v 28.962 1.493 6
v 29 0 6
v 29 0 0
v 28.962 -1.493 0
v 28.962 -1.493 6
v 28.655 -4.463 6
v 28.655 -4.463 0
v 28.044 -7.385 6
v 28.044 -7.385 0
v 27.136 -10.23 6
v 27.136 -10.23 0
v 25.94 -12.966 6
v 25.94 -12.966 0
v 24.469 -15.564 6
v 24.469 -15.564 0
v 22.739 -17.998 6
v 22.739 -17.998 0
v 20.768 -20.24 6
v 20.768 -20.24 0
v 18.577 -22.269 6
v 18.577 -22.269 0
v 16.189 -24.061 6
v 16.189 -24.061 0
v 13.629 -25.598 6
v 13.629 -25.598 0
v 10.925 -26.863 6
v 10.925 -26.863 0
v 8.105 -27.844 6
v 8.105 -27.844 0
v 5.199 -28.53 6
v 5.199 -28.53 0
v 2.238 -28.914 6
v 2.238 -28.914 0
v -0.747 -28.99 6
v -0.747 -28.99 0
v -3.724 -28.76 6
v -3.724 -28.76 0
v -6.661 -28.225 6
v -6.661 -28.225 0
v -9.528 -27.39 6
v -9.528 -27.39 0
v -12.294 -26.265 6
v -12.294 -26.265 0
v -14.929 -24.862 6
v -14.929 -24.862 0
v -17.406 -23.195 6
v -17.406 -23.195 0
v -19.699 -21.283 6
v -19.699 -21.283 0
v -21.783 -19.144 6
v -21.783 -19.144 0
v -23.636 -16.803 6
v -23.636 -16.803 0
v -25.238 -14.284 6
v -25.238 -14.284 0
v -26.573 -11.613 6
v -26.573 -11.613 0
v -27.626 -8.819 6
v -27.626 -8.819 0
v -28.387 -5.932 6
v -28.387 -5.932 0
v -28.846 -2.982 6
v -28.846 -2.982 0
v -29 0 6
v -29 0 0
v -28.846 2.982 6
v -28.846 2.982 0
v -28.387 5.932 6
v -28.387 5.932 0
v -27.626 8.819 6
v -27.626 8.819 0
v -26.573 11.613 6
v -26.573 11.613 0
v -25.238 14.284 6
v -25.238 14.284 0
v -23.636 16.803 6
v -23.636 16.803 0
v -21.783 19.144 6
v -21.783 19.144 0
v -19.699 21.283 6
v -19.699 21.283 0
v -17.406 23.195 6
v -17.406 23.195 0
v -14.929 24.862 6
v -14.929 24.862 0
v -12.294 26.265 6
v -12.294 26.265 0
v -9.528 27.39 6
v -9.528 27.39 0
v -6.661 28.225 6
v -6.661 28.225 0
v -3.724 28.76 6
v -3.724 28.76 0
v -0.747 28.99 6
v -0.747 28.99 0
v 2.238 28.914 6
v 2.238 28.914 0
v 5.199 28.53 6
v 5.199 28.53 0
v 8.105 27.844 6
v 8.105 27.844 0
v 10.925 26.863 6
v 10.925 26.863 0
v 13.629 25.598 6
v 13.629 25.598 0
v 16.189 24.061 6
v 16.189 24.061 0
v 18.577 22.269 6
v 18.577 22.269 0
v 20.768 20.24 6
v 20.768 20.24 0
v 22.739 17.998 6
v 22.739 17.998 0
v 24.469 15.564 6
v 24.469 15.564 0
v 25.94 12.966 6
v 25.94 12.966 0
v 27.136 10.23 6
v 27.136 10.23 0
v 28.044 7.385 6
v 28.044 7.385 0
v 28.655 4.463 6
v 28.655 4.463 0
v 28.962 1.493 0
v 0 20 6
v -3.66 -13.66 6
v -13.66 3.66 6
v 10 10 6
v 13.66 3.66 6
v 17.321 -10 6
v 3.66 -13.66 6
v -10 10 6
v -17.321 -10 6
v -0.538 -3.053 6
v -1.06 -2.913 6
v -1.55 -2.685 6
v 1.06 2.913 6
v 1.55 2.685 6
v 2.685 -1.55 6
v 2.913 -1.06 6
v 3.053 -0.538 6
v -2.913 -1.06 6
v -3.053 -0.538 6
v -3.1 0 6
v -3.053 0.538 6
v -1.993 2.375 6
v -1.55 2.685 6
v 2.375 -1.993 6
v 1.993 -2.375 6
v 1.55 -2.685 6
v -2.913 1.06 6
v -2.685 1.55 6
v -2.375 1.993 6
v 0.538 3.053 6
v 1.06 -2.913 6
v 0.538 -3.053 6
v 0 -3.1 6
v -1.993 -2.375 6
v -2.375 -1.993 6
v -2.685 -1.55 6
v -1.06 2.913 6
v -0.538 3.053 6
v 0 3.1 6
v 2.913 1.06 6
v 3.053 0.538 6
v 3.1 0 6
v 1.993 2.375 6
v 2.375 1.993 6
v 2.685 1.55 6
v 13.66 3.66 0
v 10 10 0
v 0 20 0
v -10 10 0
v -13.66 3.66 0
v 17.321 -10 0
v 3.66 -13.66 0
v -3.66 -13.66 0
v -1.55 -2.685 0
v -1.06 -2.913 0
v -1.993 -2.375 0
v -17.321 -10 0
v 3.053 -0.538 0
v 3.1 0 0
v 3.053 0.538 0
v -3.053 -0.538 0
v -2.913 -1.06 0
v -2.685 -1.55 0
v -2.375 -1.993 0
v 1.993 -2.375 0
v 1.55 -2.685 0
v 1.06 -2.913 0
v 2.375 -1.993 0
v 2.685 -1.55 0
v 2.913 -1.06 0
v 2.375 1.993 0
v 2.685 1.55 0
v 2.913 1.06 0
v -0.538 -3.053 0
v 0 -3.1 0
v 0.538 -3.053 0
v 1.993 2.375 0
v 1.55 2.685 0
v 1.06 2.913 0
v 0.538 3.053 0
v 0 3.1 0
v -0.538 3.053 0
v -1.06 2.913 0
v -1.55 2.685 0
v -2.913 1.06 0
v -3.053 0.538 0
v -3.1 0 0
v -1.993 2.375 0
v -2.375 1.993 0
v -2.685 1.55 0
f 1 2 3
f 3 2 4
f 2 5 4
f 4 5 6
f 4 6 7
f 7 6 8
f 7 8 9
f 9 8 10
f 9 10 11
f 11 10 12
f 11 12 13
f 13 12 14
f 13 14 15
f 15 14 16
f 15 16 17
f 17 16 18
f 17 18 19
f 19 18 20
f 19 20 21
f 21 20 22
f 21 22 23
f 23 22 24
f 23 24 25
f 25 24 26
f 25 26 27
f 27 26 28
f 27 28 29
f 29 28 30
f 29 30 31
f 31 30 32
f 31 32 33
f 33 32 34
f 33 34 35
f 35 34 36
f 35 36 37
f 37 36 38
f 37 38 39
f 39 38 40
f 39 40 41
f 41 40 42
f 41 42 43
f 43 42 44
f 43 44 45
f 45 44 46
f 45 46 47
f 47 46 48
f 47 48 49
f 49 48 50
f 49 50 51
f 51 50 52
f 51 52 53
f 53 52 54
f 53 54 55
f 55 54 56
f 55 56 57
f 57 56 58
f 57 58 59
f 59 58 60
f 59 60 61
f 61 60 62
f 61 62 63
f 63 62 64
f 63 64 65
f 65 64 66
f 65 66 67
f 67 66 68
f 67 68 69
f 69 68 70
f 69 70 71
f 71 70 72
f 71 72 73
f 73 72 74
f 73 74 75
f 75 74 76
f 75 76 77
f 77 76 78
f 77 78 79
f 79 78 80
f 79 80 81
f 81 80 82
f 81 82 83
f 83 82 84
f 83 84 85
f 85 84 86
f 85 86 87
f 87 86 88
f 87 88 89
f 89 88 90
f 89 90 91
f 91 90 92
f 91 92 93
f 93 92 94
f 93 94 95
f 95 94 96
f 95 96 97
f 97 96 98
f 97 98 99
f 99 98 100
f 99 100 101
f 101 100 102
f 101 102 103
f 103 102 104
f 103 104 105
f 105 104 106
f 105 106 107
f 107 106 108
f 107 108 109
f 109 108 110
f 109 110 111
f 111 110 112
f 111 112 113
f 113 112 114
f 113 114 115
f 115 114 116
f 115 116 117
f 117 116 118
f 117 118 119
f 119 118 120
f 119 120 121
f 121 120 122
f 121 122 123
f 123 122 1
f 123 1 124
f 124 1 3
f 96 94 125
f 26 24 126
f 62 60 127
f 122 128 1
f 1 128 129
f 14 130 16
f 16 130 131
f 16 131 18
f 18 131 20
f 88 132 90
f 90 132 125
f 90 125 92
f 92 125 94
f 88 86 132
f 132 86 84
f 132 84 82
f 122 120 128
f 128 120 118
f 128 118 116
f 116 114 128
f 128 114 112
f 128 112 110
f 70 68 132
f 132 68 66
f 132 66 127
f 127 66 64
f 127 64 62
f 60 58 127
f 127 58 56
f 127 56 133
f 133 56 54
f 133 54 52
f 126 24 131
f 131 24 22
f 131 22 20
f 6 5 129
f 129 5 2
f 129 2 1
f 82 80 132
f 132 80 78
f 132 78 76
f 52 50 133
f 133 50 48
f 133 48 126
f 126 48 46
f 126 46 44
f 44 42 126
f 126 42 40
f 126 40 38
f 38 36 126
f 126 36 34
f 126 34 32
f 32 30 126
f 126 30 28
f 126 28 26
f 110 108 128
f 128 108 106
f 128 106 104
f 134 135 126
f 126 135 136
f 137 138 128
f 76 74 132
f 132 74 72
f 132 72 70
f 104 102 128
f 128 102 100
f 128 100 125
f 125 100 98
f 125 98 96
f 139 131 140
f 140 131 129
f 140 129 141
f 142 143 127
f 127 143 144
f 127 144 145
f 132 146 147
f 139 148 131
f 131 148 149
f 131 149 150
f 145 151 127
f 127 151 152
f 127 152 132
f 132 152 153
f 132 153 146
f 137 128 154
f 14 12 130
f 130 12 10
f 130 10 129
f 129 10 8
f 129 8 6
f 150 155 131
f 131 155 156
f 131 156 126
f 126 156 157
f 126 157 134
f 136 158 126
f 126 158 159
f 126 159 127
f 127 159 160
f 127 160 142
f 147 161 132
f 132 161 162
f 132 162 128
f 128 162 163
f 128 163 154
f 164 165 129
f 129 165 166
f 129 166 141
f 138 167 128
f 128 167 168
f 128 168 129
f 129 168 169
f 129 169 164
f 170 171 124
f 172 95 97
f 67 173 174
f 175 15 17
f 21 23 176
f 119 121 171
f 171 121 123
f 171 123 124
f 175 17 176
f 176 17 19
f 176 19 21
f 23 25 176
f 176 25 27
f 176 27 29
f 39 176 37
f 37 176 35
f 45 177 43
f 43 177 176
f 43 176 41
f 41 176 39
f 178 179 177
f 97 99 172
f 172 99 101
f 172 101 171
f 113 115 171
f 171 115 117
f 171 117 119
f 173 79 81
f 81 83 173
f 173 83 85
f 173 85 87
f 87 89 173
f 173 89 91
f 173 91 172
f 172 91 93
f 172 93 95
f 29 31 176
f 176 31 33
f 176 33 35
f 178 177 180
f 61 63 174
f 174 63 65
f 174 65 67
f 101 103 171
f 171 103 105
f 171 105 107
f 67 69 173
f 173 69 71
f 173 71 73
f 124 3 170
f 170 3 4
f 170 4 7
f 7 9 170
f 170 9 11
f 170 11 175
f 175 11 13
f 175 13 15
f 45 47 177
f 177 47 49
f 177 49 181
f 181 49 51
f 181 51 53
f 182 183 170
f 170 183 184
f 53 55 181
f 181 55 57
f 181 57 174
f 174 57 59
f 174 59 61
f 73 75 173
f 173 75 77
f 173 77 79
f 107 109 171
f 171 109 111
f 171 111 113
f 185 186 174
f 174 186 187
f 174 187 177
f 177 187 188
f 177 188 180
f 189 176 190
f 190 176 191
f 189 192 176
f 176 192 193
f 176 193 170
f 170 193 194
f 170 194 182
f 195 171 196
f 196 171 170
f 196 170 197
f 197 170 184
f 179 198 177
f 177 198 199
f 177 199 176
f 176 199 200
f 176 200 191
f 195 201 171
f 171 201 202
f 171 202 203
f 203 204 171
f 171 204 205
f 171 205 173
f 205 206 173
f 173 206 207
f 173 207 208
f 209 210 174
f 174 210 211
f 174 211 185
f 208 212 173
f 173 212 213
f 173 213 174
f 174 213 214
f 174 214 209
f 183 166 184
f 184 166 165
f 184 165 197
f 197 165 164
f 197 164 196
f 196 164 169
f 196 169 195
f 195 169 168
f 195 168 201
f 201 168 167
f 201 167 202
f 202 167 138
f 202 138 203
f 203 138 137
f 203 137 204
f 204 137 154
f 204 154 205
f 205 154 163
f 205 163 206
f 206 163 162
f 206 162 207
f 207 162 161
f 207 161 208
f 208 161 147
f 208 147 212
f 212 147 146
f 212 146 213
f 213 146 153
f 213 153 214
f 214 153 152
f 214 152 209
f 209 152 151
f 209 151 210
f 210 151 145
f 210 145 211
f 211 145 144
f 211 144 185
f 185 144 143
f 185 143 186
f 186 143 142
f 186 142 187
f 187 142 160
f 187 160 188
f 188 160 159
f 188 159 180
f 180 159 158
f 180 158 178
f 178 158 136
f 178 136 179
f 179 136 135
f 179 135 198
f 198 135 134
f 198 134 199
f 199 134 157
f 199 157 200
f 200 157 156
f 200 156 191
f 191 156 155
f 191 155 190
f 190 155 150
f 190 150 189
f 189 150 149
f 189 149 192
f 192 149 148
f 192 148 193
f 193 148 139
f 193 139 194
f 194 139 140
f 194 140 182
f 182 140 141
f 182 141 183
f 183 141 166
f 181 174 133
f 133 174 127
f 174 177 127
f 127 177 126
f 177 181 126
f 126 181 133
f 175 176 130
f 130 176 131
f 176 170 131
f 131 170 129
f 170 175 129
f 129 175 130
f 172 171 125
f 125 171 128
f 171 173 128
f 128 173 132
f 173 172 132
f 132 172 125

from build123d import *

# Parameters (mm, degrees)
SKETCH_1_R          = 29
EXTRUDE_1_DEPTH     = 6
SKETCH_2_R          = 3.1
CUT_EXTRUDE_1_DEPTH = 42.448763552
CUT_EXTRUDE_2_DEPTH = 42.448763552


with BuildPart() as part:
    # 草图1 → 凸台-拉伸1 (new body)
    with BuildSketch(Plane.XY):
        Circle(SKETCH_1_R)
    extrude(amount=EXTRUDE_1_DEPTH)

    # 草图2 → 切除-拉伸1 (cut, through all)
    with BuildSketch(Plane.XY.offset(6)):
        Circle(SKETCH_2_R)
    extrude(amount=-CUT_EXTRUDE_1_DEPTH, mode=Mode.SUBTRACT)

    # 草图3 → 切除-拉伸2 (cut, through all)
    with BuildSketch(Plane.XY.offset(6)):
        Polygon((-10, 10), (0, 20), (10, 10), align=None)
        Polygon((13.660254038, 3.660254038), (17.320508076, -10), (3.660254038, -13.660254038), align=None)
        Polygon((-3.660254038, -13.660254038), (-17.320508076, -10), (-13.660254038, 3.660254038), align=None)
    extrude(amount=-CUT_EXTRUDE_2_DEPTH, mode=Mode.SUBTRACT)


solid = part.part
